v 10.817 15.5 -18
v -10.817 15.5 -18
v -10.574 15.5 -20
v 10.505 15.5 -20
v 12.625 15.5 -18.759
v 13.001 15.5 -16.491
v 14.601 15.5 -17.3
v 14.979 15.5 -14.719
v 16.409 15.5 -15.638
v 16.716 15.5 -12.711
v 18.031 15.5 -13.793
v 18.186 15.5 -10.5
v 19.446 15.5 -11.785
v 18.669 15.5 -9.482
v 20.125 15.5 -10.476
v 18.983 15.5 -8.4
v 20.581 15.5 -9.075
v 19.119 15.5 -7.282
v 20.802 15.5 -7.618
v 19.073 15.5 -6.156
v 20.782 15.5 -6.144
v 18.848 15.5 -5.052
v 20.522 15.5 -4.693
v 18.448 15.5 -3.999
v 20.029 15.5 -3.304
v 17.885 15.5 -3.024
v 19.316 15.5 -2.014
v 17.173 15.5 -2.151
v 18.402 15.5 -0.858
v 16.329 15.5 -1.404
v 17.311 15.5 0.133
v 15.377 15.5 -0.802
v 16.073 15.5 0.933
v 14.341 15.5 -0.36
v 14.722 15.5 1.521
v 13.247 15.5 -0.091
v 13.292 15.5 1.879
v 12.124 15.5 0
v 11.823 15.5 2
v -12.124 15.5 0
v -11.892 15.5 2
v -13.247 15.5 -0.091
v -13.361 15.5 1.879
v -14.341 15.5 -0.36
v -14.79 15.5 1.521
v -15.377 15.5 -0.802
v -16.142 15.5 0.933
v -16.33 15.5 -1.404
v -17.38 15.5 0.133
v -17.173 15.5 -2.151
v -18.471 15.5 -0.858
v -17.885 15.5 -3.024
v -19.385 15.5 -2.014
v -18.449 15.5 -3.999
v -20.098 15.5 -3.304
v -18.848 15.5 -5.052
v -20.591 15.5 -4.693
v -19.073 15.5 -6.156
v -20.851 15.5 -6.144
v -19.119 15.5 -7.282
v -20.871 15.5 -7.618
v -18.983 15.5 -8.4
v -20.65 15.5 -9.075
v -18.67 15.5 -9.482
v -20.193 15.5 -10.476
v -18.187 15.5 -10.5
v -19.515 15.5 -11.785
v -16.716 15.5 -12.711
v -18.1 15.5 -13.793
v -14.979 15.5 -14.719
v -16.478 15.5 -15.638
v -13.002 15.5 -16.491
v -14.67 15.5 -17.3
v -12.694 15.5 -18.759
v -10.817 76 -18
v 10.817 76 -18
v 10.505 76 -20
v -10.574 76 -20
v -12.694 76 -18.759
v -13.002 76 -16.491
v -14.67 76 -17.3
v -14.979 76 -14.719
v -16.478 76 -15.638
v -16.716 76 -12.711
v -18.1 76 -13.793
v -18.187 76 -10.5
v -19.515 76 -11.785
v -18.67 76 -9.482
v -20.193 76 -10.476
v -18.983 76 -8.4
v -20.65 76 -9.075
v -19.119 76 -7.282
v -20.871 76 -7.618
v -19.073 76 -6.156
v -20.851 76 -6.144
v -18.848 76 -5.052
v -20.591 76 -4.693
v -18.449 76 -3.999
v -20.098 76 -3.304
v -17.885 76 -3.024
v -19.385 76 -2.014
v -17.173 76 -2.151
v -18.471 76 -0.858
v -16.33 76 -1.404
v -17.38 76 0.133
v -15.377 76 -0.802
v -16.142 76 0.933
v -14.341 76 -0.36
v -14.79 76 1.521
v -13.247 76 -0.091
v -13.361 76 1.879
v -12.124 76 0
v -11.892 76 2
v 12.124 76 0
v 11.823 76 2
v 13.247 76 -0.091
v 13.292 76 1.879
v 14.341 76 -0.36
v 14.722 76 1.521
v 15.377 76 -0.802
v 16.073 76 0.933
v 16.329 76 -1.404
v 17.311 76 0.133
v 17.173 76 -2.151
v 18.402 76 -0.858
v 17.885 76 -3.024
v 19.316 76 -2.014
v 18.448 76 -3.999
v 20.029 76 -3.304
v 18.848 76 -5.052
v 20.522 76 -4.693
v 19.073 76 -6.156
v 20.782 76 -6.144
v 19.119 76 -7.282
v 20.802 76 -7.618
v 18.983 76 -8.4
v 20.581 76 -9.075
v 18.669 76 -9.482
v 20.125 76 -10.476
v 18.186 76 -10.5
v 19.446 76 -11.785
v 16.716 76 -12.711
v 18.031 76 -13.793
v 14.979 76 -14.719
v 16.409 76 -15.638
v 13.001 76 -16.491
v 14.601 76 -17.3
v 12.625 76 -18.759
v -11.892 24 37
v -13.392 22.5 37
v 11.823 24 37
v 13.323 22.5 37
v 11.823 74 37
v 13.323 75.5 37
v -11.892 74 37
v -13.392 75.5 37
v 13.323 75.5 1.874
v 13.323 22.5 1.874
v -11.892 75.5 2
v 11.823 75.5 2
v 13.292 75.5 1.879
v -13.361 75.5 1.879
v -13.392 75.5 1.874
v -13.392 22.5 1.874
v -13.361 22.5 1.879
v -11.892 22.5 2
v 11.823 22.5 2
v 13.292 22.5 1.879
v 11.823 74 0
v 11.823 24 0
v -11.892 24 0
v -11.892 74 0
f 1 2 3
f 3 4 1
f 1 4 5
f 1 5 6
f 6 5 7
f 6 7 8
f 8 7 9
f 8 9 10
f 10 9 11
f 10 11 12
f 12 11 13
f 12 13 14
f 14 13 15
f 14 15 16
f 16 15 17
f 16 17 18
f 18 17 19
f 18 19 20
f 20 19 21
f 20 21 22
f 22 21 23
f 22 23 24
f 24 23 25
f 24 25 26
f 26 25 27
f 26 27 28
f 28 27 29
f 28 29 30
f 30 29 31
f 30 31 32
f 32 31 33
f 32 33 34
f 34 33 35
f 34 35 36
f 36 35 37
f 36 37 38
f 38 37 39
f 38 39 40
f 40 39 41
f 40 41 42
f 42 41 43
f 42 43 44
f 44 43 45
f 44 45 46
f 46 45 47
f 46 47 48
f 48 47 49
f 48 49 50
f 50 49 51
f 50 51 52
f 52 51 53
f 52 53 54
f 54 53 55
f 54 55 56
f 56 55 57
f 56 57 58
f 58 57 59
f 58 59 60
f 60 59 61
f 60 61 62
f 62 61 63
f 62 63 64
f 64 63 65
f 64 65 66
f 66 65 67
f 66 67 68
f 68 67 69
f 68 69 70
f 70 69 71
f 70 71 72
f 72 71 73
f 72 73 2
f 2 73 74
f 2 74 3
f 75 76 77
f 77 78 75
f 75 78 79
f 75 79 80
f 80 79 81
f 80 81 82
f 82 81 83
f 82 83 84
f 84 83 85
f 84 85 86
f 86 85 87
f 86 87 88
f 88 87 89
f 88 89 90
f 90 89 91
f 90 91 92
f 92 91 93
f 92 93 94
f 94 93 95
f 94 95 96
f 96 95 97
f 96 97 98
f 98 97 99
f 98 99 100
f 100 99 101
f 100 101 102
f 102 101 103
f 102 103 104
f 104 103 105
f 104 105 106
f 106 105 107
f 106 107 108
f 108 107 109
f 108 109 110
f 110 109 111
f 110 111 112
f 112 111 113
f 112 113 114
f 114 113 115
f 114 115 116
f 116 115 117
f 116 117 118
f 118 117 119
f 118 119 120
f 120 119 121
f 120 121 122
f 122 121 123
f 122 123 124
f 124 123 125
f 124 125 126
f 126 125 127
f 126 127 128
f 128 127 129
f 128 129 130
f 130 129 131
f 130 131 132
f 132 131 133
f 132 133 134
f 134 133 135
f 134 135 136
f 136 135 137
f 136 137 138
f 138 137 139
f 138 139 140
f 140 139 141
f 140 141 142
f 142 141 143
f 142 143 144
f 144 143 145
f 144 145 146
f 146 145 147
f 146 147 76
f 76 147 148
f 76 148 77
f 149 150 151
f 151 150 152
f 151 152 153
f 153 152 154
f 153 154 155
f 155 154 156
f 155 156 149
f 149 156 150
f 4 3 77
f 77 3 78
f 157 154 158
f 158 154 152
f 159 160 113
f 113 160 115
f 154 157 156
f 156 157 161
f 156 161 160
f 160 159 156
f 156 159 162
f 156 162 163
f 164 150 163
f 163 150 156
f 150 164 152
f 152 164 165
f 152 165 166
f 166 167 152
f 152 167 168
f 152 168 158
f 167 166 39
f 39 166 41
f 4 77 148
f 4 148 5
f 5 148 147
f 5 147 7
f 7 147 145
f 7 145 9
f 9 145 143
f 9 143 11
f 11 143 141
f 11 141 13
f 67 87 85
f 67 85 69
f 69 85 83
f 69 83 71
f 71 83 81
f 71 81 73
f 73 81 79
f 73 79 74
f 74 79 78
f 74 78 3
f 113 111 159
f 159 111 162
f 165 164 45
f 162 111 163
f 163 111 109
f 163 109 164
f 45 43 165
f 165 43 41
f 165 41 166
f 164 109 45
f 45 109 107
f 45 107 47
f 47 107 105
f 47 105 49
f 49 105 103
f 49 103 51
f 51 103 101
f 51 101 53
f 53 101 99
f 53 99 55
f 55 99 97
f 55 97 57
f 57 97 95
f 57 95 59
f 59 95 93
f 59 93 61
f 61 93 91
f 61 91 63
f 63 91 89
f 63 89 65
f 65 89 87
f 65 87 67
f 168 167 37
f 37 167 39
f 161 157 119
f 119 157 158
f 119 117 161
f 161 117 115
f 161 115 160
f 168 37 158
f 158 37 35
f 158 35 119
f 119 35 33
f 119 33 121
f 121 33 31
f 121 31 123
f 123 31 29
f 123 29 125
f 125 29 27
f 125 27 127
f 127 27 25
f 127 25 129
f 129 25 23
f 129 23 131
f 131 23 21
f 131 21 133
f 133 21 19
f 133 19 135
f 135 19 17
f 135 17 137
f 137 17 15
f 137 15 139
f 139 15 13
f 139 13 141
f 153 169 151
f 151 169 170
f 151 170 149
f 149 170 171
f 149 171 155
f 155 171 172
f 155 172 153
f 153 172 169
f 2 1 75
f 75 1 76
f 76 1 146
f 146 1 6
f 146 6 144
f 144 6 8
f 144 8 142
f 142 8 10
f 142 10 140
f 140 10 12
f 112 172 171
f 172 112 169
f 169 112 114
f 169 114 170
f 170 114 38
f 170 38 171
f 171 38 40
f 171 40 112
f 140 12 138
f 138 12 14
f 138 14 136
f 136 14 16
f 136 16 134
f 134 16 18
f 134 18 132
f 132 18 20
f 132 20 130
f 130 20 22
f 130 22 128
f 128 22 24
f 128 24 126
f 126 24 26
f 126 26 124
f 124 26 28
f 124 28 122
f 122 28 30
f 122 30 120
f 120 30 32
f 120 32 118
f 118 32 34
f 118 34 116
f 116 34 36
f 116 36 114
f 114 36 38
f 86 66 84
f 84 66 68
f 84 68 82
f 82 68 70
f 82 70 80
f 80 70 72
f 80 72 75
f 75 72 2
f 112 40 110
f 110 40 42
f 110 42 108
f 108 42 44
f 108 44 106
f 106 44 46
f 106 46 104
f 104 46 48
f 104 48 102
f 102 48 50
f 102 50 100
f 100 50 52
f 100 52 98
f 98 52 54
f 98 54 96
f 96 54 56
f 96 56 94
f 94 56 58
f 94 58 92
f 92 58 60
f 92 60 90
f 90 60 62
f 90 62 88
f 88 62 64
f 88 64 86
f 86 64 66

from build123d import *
from build123d.topology import SkipClean

# Parameters (mm, degrees)
CUT_EXTRUDE1_DEPTH           = 5
CUT_EXTRUDE3_DEPTH           = 70
SKETCH8_R                    = 43
CUT_EXTRUDE4_DEPTH           = 65
FILLET1_R                    = 7
SKETCH12_W                   = 6.5
SKETCH12_H                   = 63.5
CUT_REVOLVE1_ANGLE           = 60
CUT_REVOLVE1_OTHER_WAY_ANGLE = 60
SKETCH18_W                   = 13
SKETCH18_H                   = 8
CUT_EXTRUDE13_DEPTH          = 5
SKETCH20_W                   = 100
SKETCH20_H                   = 7
CUT_EXTRUDE15_DEPTH          = 5
SKETCH19_R                   = 1.5
CUT_EXTRUDE14_DEPTH          = 12
FILLET3_R                    = 4
SKETCH24_W                   = 2
SKETCH24_H                   = 3
BOSS_EXTRUDE3_DEPTH          = 2
CIRPATTERN2_COUNT            = 5
SKETCH26_W                   = 5
SKETCH26_H                   = 63.5
CUT_REVOLVE2_ANGLE           = 50
CUT_REVOLVE2_OTHER_WAY_ANGLE = 50
FILLET8_R                    = 9
SKETCH50_W                   = 13
SKETCH50_H                   = 5
CUT_EXTRUDE23_DEPTH          = 7
WRAP1_SECTION_W              = 14
WRAP1_SECTION_H              = 8
WRAP1_ANGLE                  = 29.893450181
SKETCH52_W                   = 21.079035893
SKETCH52_H                   = 8
BOSS_EXTRUDE11_DEPTH         = 7
BOSS_EXTRUDE12_START         = -1
SKETCH53_W                   = 3
SKETCH53_H                   = 7
BOSS_EXTRUDE12_DEPTH         = 3
SKETCH54_W                   = 1.6
SKETCH54_H                   = 7
BOSS_EXTRUDE13_DEPTH         = 16
SKETCH55_W                   = 4
SKETCH55_H                   = 7
BOSS_EXTRUDE14_DEPTH         = 6
SKETCH56_W                   = 3
SKETCH56_H                   = 7
CUT_EXTRUDE24_DEPTH          = 1
FILLET9_R                    = 2
SKETCH57_R                   = 1
CUT_EXTRUDE25_DEPTH          = 2
MIRROR6_START                = 14.3
MIRROR6_DEPTH                = 3.544129525
MIRROR6_START_2              = 19.844129625
MIRROR6_2_DEPTH              = 1.455870375
MIRROR6_START_3              = 17.844129525
MIRROR6_3_DEPTH              = 2.0000001
MIRROR6_START_4              = -10.618295229
MIRROR6_4_OUTLINE_R          = 1
MIRROR6_4_DEPTH              = 2
SKETCH61_W                   = 1.5
SKETCH61_H                   = 40.3
BOSS_EXTRUDE15_DEPTH         = 10
SKETCH63_W                   = 6.5
SKETCH63_H                   = 40.3
CUT_EXTRUDE27_DEPTH          = 10
CUT_EXTRUDE28_DEPTH          = 44
SKETCH67_W                   = 15
SKETCH67_H                   = 8
CUT_EXTRUDE29_DEPTH          = 5
SKETCH68_W                   = 23.715050839
SKETCH68_H                   = 50
CUT_EXTRUDE30_DEPTH          = 8
BOSS_EXTRUDE19_DEPTH         = 35
BOSS_EXTRUDE19_DEPTH_BACK    = 1
SKETCH69_W                   = 26.715050839
SKETCH69_H                   = 53
SKETCH69_W_2                 = 23.715050839
SKETCH69_H_2                 = 50
INTERSECT1_START             = 76
INTERSECT1_OUTLINE_R         = 45
INTERSECT1_OUTLINE_W         = 13
INTERSECT1_OUTLINE_H         = 8
INTERSECT1_DEPTH             = 10.5
INTERSECT1_2_OUTLINE_R       = 45
INTERSECT1_2_OUTLINE_W       = 13
INTERSECT1_2_OUTLINE_H       = 5
INTERSECT1_2_OUTLINE_W_2     = 15
INTERSECT1_2_OUTLINE_H_2     = 8
INTERSECT1_2_DEPTH           = 15.5
INTERSECT1_START_2           = 15.5
INTERSECT1_3_DEPTH           = 60.5
SKETCH70_W                   = 21.079035893
SKETCH70_H                   = 7
CUT_EXTRUDE31_DEPTH          = 10


with BuildPart() as part:
    # Sketch1 → Revolve1 (revolve)
    with BuildSketch(Plane.XY, mode=Mode.PRIVATE) as revolve1_sk:
        with BuildLine():
            Line((0, 86.5), (0, 11.5))
            Line((0, 11.5), (22.7, 11.5))
            Line((22.7, 11.5), (22.7, 0))
            Line((22.7, 0), (25, 0))
            Line((25, 0), (25, 11.5))
            Line((25, 11.5), (45, 11.5))
            Line((45, 11.5), (45, 81.5))
            ThreePointArc((45, 81.5), (43.535533906, 85.035533906), (40, 86.5))
            Line((40, 86.5), (0, 86.5))
        make_face()
    revolve(revolve1_sk.sketch.rotate(Axis((0, 2, 0), (0, 1, 0)), 90), axis=Axis((0, 2, 0), (0, 1, 0)))

    # Sketch5 → Cut-Extrude1 (cut)
    with BuildSketch(Plane(origin=(0, 86.5, 0), x_dir=(1, 0, 0), z_dir=(0, 1, 0))):
        with BuildLine():
            Line((-45, 0), (45, 0))
            ThreePointArc((45, 0), (0, 45), (-45, 0))
        make_face()
    extrude(amount=-CUT_EXTRUDE1_DEPTH, mode=Mode.SUBTRACT)

    # Sketch7 → Cut-Extrude3 (cut)
    with BuildSketch(Plane.XZ.offset(-11.5)):
        with BuildLine():
            Line((21, 0), (-21, 0))
            ThreePointArc((-21, 0), (-18.277714988, -10.340461055), (-10.816653826, -18))
            Line((-10.816653826, -18), (10.816653826, -18))
            ThreePointArc((10.816653826, -18), (18.277714988, -10.340461055), (21, 0))
        make_face()
    extrude(amount=-CUT_EXTRUDE3_DEPTH, mode=Mode.SUBTRACT)

    # Sketch8 → Cut-Extrude4 (cut)
    with BuildSketch(Plane(origin=(0, 79, 0), x_dir=(1, 0, 0), z_dir=(0, 1, 0))):
        with Locations(Location((0, 0, 0), (0, 0, 270))):
            Circle(SKETCH8_R)
        with BuildLine():
            Line((22.912878475, -2), (-22.981606036, -2))
            ThreePointArc((-22.981606036, -2), (-20.067855169, 10.855581536), (-10.573881727, 20))
            Line((-10.573881727, 20), (10.505154166, 20))
            ThreePointArc((10.505154166, 20), (19.999127608, 10.855581536), (22.912878475, -2))
        make_face(mode=Mode.SUBTRACT)
    extrude(amount=-CUT_EXTRUDE4_DEPTH, mode=Mode.SUBTRACT)

    # Fillet1
    fillet1_edges = [part.edges().sort_by_distance(p)[0] for p in [
        (-21, 46.5, 0),
        (21, 46.5, 0),
    ]]
    fillet(fillet1_edges, radius=FILLET1_R)

    # Sketch12 → Cut-Revolve1 (revolve, cut)
    with BuildSketch(Plane(origin=(0, 0, 0), x_dir=(0, 0, -1), z_dir=(1, 0, 0))):
        with Locations((-44.75, 47.25)):
            Rectangle(SKETCH12_W, SKETCH12_H)
    revolve(axis=Axis((0, 81.5, 0), (0, -1, 0)), revolution_arc=CUT_REVOLVE1_ANGLE, mode=Mode.SUBTRACT)

    # Sketch12 → Cut-Revolve1 other way (revolve, cut)
    with BuildSketch(Plane(origin=(0, 0, 0), x_dir=(0, 0, -1), z_dir=(1, 0, 0))):
        with Locations((-44.75, 47.25)):
            Rectangle(SKETCH12_W, SKETCH12_H)
    revolve(axis=Axis((0, 81.5, 0), (0, 1, 0)), revolution_arc=CUT_REVOLVE1_OTHER_WAY_ANGLE, mode=Mode.SUBTRACT)

    # Sketch18 → Cut-Extrude13 (cut)
    with BuildSketch(Plane(origin=(0, 81.5, 0), x_dir=(1, 0, 0), z_dir=(0, 1, 0))):
        with Locations((0, 30)):
            Rectangle(SKETCH18_W, SKETCH18_H)
    extrude(amount=-CUT_EXTRUDE13_DEPTH, mode=Mode.SUBTRACT)

    # Sketch20 → Cut-Extrude15 (cut)
    with BuildSketch(Plane(origin=(0, 86.5, 0), x_dir=(1, 0, 0), z_dir=(0, 1, 0))):
        with Locations((0, -3.5)):
            Rectangle(SKETCH20_W, SKETCH20_H)
    extrude(amount=-CUT_EXTRUDE15_DEPTH, mode=Mode.SUBTRACT)

    # Sketch19 → Cut-Extrude14 (cut)
    with BuildSketch(Plane(origin=(0, 0, 7), x_dir=(-1, 0, 0), z_dir=(0, 0, -1))):
        with Locations((0, 84)):
            Circle(SKETCH19_R)
        with Locations((-30, 84)):
            Circle(SKETCH19_R)
        with Locations((29.452221542, 84)):
            Circle(SKETCH19_R)
    extrude(amount=-CUT_EXTRUDE14_DEPTH, mode=Mode.SUBTRACT)

    # Fillet3
    fillet3_edges = [part.edges().sort_by_distance(p)[0] for p in [
        (0, 11.5, 45),
    ]]
    fillet(fillet3_edges, radius=FILLET3_R - 0.0001)  # a hair under: the kernel refuses the full size

    # Sketch24 → Boss-Extrude3 (add)
    with BuildSketch(Plane.XZ):
        with Locations((0, -22.7)):
            Rectangle(SKETCH24_W, SKETCH24_H)
    boss_extrude3 = extrude(amount=-BOSS_EXTRUDE3_DEPTH)

    # CirPattern2: Boss-Extrude3 ×5 about axis
    cirpattern2_axis = Axis((0, 0, 0), (0, 1, 0))
    for i in range(1, CIRPATTERN2_COUNT):
        add(boss_extrude3.rotate(cirpattern2_axis, i * 360 / CIRPATTERN2_COUNT))

    # Sketch26 → Cut-Revolve2 (revolve, cut)
    with BuildSketch(Plane(origin=(0, 0, 0), x_dir=(0, 0, -1), z_dir=(1, 0, 0))):
        with Locations((45.056943441, 47.25)):
            Rectangle(SKETCH26_W, SKETCH26_H)
    revolve(axis=Axis((0, 2, 0), (0, -1, 0)), revolution_arc=CUT_REVOLVE2_ANGLE, mode=Mode.SUBTRACT)

    # Sketch26 → Cut-Revolve2 other way (revolve, cut)
    with BuildSketch(Plane(origin=(0, 0, 0), x_dir=(0, 0, -1), z_dir=(1, 0, 0))):
        with Locations((45.056943441, 47.25)):
            Rectangle(SKETCH26_W, SKETCH26_H)
    revolve(axis=Axis((0, 2, 0), (0, 1, 0)), revolution_arc=CUT_REVOLVE2_OTHER_WAY_ANGLE, mode=Mode.SUBTRACT)

    # Fillet8
    fillet8_edges = [part.edges().sort_by_distance(p)[0] for p in [
        (-22.981606036, 46.5, 2),
        (22.912878475, 46.5, 2),
    ]]
    fillet(fillet8_edges, radius=FILLET8_R)

    # Sketch50 → Cut-Extrude23 (cut)
    with BuildSketch(Plane(origin=(0, 14, 0), x_dir=(1, 0, 0), z_dir=(0, 1, 0))):
        with Locations((32, 0)):
            Rectangle(SKETCH50_W, SKETCH50_H)
        with Locations((-32, 0)):
            Rectangle(SKETCH50_W, SKETCH50_H)
    extrude(amount=-CUT_EXTRUDE23_DEPTH, mode=Mode.SUBTRACT)

    # Wrap1 section (on wrap section) → Wrap1 (revolve)
    with BuildSketch(Plane(origin=(-0.03436378, 79, 0.443056559), x_dir=(0.8417807911855657, 0, -0.5398195064936087), z_dir=(0.5398195064936087, 0, 0.8417807911855657))):
        with Locations((30, -61)):
            Rectangle(WRAP1_SECTION_W, WRAP1_SECTION_H)
    wrap1 = revolve(axis=Axis((-0.03436378, 79, 0.443056559), (0, 1, 0)), revolution_arc=WRAP1_ANGLE)

    # Mirror3: Wrap1 across plane
    add(wrap1.mirror(Plane(origin=(0, 0, 0), x_dir=(0, 0, 1), z_dir=(1, 0, 0))))

    # Sketch52 → Boss-Extrude11 (add)
    with BuildSketch(Plane(origin=(0, 0, -20), x_dir=(-1, 0, 0), z_dir=(0, 0, -1))):
        with Locations((0.03436378, 18)):
            Rectangle(SKETCH52_W, SKETCH52_H)
    extrude(amount=BOSS_EXTRUDE11_DEPTH)



with BuildPart() as body_2:
    # Sketch53 → Boss-Extrude12 (new body)
    with BuildSketch(Plane(origin=(20.823161639, 0, 0), x_dir=(0, 0, -1), z_dir=(1, 0, 0)).offset(BOSS_EXTRUDE12_START)):
        with Locations((9.818295229, 17.8)):
            Rectangle(SKETCH53_W, SKETCH53_H)
    extrude(amount=BOSS_EXTRUDE12_DEPTH)


with BuildPart() as part_1:
    add(part.part)

    add(body_2.part)  # Boss-Extrude13 merges body 2
    # Sketch54 → Boss-Extrude13 (add)
    with BuildSketch(Plane(origin=(22.823161639, 0, 0), x_dir=(0, 0, -1), z_dir=(1, 0, 0))):
        with Locations((9.818295229, 17.8)):
            Rectangle(SKETCH54_W, SKETCH54_H)
    extrude(amount=BOSS_EXTRUDE13_DEPTH)

    # Sketch55 → Boss-Extrude14 (add)
    with BuildSketch(Plane.XY.offset(-9.118295229)):
        with Locations((34.823161639, 17.8)):
            Rectangle(SKETCH55_W, SKETCH55_H)
    extrude(amount=BOSS_EXTRUDE14_DEPTH)

    # Sketch56 → Cut-Extrude24 (cut)
    with BuildSketch(Plane.XY.offset(-9.018295229)):
        with Locations((25.823161639, 17.8)):
            Rectangle(SKETCH56_W, SKETCH56_H)
    extrude(amount=-CUT_EXTRUDE24_DEPTH, mode=Mode.SUBTRACT)

    # Fillet9
    # the kernel refuses this fillet: 2 mm, written as the material it takes off along each edge
    with BuildSketch(Plane(origin=(27.323161639, 25.630127019, -9.018295229), x_dir=(0, 0, -1), z_dir=(0, -1, 0))) as fillet9_piece_1_section:
        with BuildLine():
            CenterArc((2, 1.732050808), FILLET9_R, 180, 60)
            Line((0, 1.732050808), (0, 0))
            Line((0, 0), (1, 0))
        make_face()
    fillet9_piece_1 = extrude(amount=15.660254038, mode=Mode.PRIVATE)
    fillet9_piece_1 = split(fillet9_piece_1, bisect_by=Plane(origin=(27.323161639, 14, -9.018295229), z_dir=(0, 1, 0)), keep=Keep.TOP, mode=Mode.PRIVATE)
    add(fillet9_piece_1, mode=Mode.SUBTRACT)

    # Sketch57 → Cut-Extrude25 (cut)
    with BuildSketch(Plane(origin=(0, 0, -10.618295229), x_dir=(-1, 0, 0), z_dir=(0, 0, -1))):
        with Locations(Location((-36.823161639, 18.844129625, 0), (0, 0, 90))):
            Circle(SKETCH57_R)
    extrude(amount=-CUT_EXTRUDE25_DEPTH, mode=Mode.SUBTRACT)

    # Mirror6: read off the stored shape, not the designer's step
    # Mirror6 outline → Mirror6 (add)
    with BuildSketch(Plane(origin=(0, 0, 0), x_dir=(1, 0, 0), z_dir=(0, 1, 0)).offset(MIRROR6_START)):
        with BuildLine():
            Line((-32.823161639, 9.018295229), (-29.055212446, 9.018295229))
            ThreePointArc((-29.055212446, 9.018295229), (-28.055212446, 9.286244421), (-27.323161639, 10.018295229))
            Line((-27.323161639, 10.018295229), (-24.323161639, 10.018295229))
            Line((-24.323161639, 10.018295229), (-24.323161639, 9.018295229))
            Line((-24.323161639, 9.018295229), (-22.823161639, 9.018295229))
            Line((-22.823161639, 9.018295229), (-22.823161639, 8.318295229))
            Line((-22.823161639, 8.318295229), (-20.794815555, 8.318295229))
            ThreePointArc((-20.794815555, 8.318295229), (-20.436002794, 9.828095276), (-19.823161639, 11.253812113))
            Line((-19.823161639, 11.253812113), (-19.823161639, 11.318295229))
            Line((-19.823161639, 11.318295229), (-22.823161639, 11.318295229))
            Line((-22.823161639, 11.318295229), (-22.823161639, 10.618295229))
            Line((-22.823161639, 10.618295229), (-38.823161639, 10.618295229))
            Line((-38.823161639, 10.618295229), (-38.823161639, 9.018295229))
            Line((-38.823161639, 9.018295229), (-36.823161639, 9.018295229))
            Line((-36.823161639, 9.018295229), (-36.823161639, 8.618295229))
            Line((-36.823161639, 8.618295229), (-36.823161639, 3.118295229))
            Line((-36.823161639, 3.118295229), (-32.823161639, 3.118295229))
            Line((-32.823161639, 3.118295229), (-32.823161639, 9.018295229))
        make_face()
    extrude(amount=MIRROR6_DEPTH)

    # Mirror6 2 outline → Mirror6 2 (add)
    with BuildSketch(Plane(origin=(0, 0, 0), x_dir=(1, 0, 0), z_dir=(0, 1, 0)).offset(MIRROR6_START_2)):
        with BuildLine():
            Line((-32.823161639, 9.018295229), (-29.055212446, 9.018295229))
            ThreePointArc((-29.055212446, 9.018295229), (-28.055212446, 9.286244421), (-27.323161639, 10.018295229))
            Line((-27.323161639, 10.018295229), (-24.323161639, 10.018295229))
            Line((-24.323161639, 10.018295229), (-24.323161639, 9.018295229))
            Line((-24.323161639, 9.018295229), (-22.823161639, 9.018295229))
            Line((-22.823161639, 9.018295229), (-22.823161639, 8.318295229))
            Line((-22.823161639, 8.318295229), (-20.794815555, 8.318295229))
            ThreePointArc((-20.794815555, 8.318295229), (-20.436002794, 9.828095276), (-19.823161639, 11.253812113))
            Line((-19.823161639, 11.253812113), (-19.823161639, 11.318295229))
            Line((-19.823161639, 11.318295229), (-22.823161639, 11.318295229))
            Line((-22.823161639, 11.318295229), (-22.823161639, 10.618295229))
            Line((-22.823161639, 10.618295229), (-38.823161639, 10.618295229))
            Line((-38.823161639, 10.618295229), (-38.823161639, 9.018295229))
            Line((-38.823161639, 9.018295229), (-36.823161639, 9.018295229))
            Line((-36.823161639, 9.018295229), (-36.823161639, 8.618295229))
            Line((-36.823161639, 8.618295229), (-36.823161639, 3.118295229))
            Line((-36.823161639, 3.118295229), (-32.823161639, 3.118295229))
            Line((-32.823161639, 3.118295229), (-32.823161639, 9.018295229))
        make_face()
    extrude(amount=MIRROR6_2_DEPTH)

    # Mirror6 3 outline → Mirror6 3 (add)
    with BuildSketch(Plane(origin=(0, 0, 0), x_dir=(1, 0, 0), z_dir=(0, 1, 0)).offset(MIRROR6_START_3)):
        with BuildLine():
            Line((-32.823161639, 9.018295229), (-29.055212446, 9.018295229))
            ThreePointArc((-29.055212446, 9.018295229), (-28.055212446, 9.286244421), (-27.323161639, 10.018295229))
            Line((-27.323161639, 10.018295229), (-24.323161639, 10.018295229))
            Line((-24.323161639, 10.018295229), (-24.323161639, 9.018295229))
            Line((-24.323161639, 9.018295229), (-22.823161639, 9.018295229))
            Line((-22.823161639, 9.018295229), (-22.823161639, 8.318295229))
            Line((-22.823161639, 8.318295229), (-20.794815555, 8.318295229))
            ThreePointArc((-20.794815555, 8.318295229), (-20.436002794, 9.828095276), (-19.823161639, 11.253812113))
            Line((-19.823161639, 11.253812113), (-19.823161639, 11.318295229))
            Line((-19.823161639, 11.318295229), (-22.823161639, 11.318295229))
            Line((-22.823161639, 11.318295229), (-22.823161639, 10.618295229))
            Line((-22.823161639, 10.618295229), (-38.823161639, 10.618295229))
            Line((-38.823161639, 10.618295229), (-38.823161639, 9.018295229))
            Line((-38.823161639, 9.018295229), (-36.823161639, 9.018295229))
            Line((-36.823161639, 9.018295229), (-36.823161639, 8.618295229))
            Line((-36.823161639, 8.618295229), (-36.823161639, 3.118295229))
            Line((-36.823161639, 3.118295229), (-32.823161639, 3.118295229))
            Line((-32.823161639, 3.118295229), (-32.823161639, 9.018295229))
        make_face()
    extrude(amount=MIRROR6_3_DEPTH)

    # Mirror6 4 outline → Mirror6 4 (cut)
    with BuildSketch(Plane.XY.offset(MIRROR6_START_4)):
        with Locations((-36.823161639, 18.844129625)):
            Circle(MIRROR6_4_OUTLINE_R)
    extrude(amount=MIRROR6_4_DEPTH, mode=Mode.SUBTRACT)

    # Sketch61 → Boss-Extrude15 (add)
    with BuildSketch(Plane(origin=(45, 0, 0), x_dir=(0, 0, -1), z_dir=(1, 0, 0))):
        with Locations((23.675442436, 50.15)):
            Rectangle(SKETCH61_W, SKETCH61_H)
        with Locations((15.675442436, 50.15)):
            Rectangle(SKETCH61_W, SKETCH61_H)
        Polygon((24.425442436, 30), (24.425442436, 28.5), (14.925442436, 28.5), (14.925442436, 30), (16.425442436, 30), (22.925442436, 30), align=None)
        Polygon((22.925442436, 70.3), (24.425442436, 70.3), (24.425442436, 71.8), (14.925442436, 71.8), (14.925442436, 70.3), (16.425442436, 70.3), align=None)
    extrude(amount=-BOSS_EXTRUDE15_DEPTH)

    # Sketch63 → Cut-Extrude27 (cut)
    with BuildSketch(Plane(origin=(45, 0, 0), x_dir=(0, 0, -1), z_dir=(1, 0, 0))):
        with Locations((19.675442436, 50.15)):
            Rectangle(SKETCH63_W, SKETCH63_H)
    extrude(amount=-CUT_EXTRUDE27_DEPTH, mode=Mode.SUBTRACT)

    # Sketch66 → Cut-Extrude28 (cut)
    with SkipClean():  # the faces are left unmerged after this step: merging them gives an invalid solid
        with BuildSketch(Plane(origin=(0, 71.8, 0), x_dir=(1, 0, 0), z_dir=(0, 1, 0))):
            with BuildLine():
                Line((42.452693296, 14.925442436), (45, 14.925442436))
                Line((45, 14.925442436), (45, 24.425442436))
                Line((45, 24.425442436), (37.794149836, 24.425442436))
                ThreePointArc((37.794149836, 24.425442436), (40.403606994, 19.812837804), (42.452693296, 14.925442436))
            make_face()
        extrude(amount=-CUT_EXTRUDE28_DEPTH, mode=Mode.SUBTRACT)

    # Sketch67 → Cut-Extrude29 (cut)
    with SkipClean():  # the faces are left unmerged after this step: merging them gives an invalid solid
        with BuildSketch(Plane.XZ.offset(-11.5)):
            with Locations((0, 35.077013509)):
                Rectangle(SKETCH67_W, SKETCH67_H)
        extrude(amount=-CUT_EXTRUDE29_DEPTH, mode=Mode.SUBTRACT)

    # Sketch68 → Cut-Extrude30 (cut)
    with SkipClean():  # the faces are left unmerged after this step: merging them gives an invalid solid
        with BuildSketch(Plane.XY.offset(2)):
            with Locations((-0.034363781, 49)):
                Rectangle(SKETCH68_W, SKETCH68_H)
        extrude(amount=-CUT_EXTRUDE30_DEPTH, mode=Mode.SUBTRACT)

    # Sketch69 → Boss-Extrude19 (add, two sides: drawn at the far end of the back side and taken through both)
    with SkipClean():  # the faces are left unmerged after this step: merging them gives an invalid solid
        with BuildSketch(Plane.XY.offset(2).offset(-BOSS_EXTRUDE19_DEPTH_BACK)):
            with Locations((-0.034363781, 49)):
                Rectangle(SKETCH69_W, SKETCH69_H)
            with Locations((-0.034363781, 49)):
                Rectangle(SKETCH69_W_2, SKETCH69_H_2, mode=Mode.SUBTRACT)
        extrude(amount=BOSS_EXTRUDE19_DEPTH + BOSS_EXTRUDE19_DEPTH_BACK)

    # Intersect1: read off the stored shape, not the designer's step
    # Intersect1 outline → Intersect1 (cut)
    with SkipClean():  # the faces are left unmerged after this step: merging them gives an invalid solid
        with BuildSketch(Plane(origin=(0, 0, 0), x_dir=(1, 0, 0), z_dir=(0, 1, 0)).offset(INTERSECT1_START)):
            Circle(INTERSECT1_OUTLINE_R)
            with Locations((0, 30)):
                Rectangle(INTERSECT1_OUTLINE_W, INTERSECT1_OUTLINE_H, mode=Mode.SUBTRACT)
        extrude(amount=INTERSECT1_DEPTH, mode=Mode.SUBTRACT)

    # Intersect1 2 outline → Intersect1 2 (cut)
    with SkipClean():  # the faces are left unmerged after this step: merging them gives an invalid solid
        with BuildSketch(Plane(origin=(0, 0, 0), x_dir=(1, 0, 0), z_dir=(0, 1, 0))):
            Circle(INTERSECT1_2_OUTLINE_R)
            with Locations((-32, 0)):
                Rectangle(INTERSECT1_2_OUTLINE_W, INTERSECT1_2_OUTLINE_H, mode=Mode.SUBTRACT)
            with Locations((32, 0)):
                Rectangle(INTERSECT1_2_OUTLINE_W, INTERSECT1_2_OUTLINE_H, mode=Mode.SUBTRACT)
            with Locations((0, -35.077013509)):
                Rectangle(INTERSECT1_2_OUTLINE_W_2, INTERSECT1_2_OUTLINE_H_2, mode=Mode.SUBTRACT)
        extrude(amount=INTERSECT1_2_DEPTH, mode=Mode.SUBTRACT)

    # Intersect1 3 outline → Intersect1 3 (cut)
    with BuildSketch(Plane(origin=(0, 0, 0), x_dir=(1, 0, 0), z_dir=(0, 1, 0)).offset(INTERSECT1_START_2)):
        with BuildLine():
            ThreePointArc((40.326556611, 14.925442436), (42.846361448, -3.631709055), (37.239092363, -21.5))
            Line((37.239092363, -21.5), (38.97114317, -22.5))
            ThreePointArc((38.97114317, -22.5), (44.828761414, 3.922008424), (34.47199994, 28.925442436))
            Line((34.47199994, 28.925442436), (32.939911054, 27.639867217))
            ThreePointArc((32.939911054, 27.639867217), (34.202355022, 26.061444913), (35.389232286, 24.425442436))
            Line((35.389232286, 24.425442436), (35, 24.425442436))
            Line((35, 24.425442436), (35, 14.925442436))
            Line((35, 14.925442436), (40.326556611, 14.925442436))
        make_face()
        with BuildLine():
            Line((-38.97114317, -22.5), (-37.239092363, -21.5))
            ThreePointArc((-37.239092363, -21.5), (-42.836372018, 3.747696938), (-32.939911054, 27.639867217))
            Line((-32.939911054, 27.639867217), (-34.47199994, 28.925442436))
            ThreePointArc((-34.47199994, 28.925442436), (-44.828761414, 3.922008424), (-38.97114317, -22.5))
        make_face()
    extrude(amount=INTERSECT1_3_DEPTH, mode=Mode.SUBTRACT)

    # Sketch70 → Cut-Extrude31 (cut)
    with BuildSketch(Plane(origin=(0, 22, 0), x_dir=(1, 0, 0), z_dir=(0, 1, 0))):
        with BuildLine():
            Line((24.323161639, 10.018295229), (27.323161639, 10.018295229))
            ThreePointArc((27.323161639, 10.018295229), (28.055212446, 9.286244421), (29.055212446, 9.018295229))
            Line((29.055212446, 9.018295229), (32.823161639, 9.018295229))
            Line((32.823161639, 9.018295229), (32.823161639, 3.118295229))
            Line((32.823161639, 3.118295229), (36.823161639, 3.118295229))
            Line((36.823161639, 3.118295229), (36.823161639, 9.018295229))
            Line((36.823161639, 9.018295229), (38.823161639, 9.018295229))
            Line((38.823161639, 9.018295229), (38.823161639, 10.618295229))
            Line((38.823161639, 10.618295229), (22.823161639, 10.618295229))
            Line((22.823161639, 10.618295229), (22.823161639, 11.318295229))
            Line((22.823161639, 11.318295229), (19.823161639, 11.318295229))
            Line((19.823161639, 11.318295229), (19.823161639, 11.123105626))
            ThreePointArc((19.823161639, 11.123105626), (20.390189722, 9.757903156), (20.726087994, 8.318295229))
            Line((20.726087994, 8.318295229), (22.823161639, 8.318295229))
            Line((22.823161639, 8.318295229), (22.823161639, 9.018295229))
            Line((22.823161639, 9.018295229), (24.323161639, 9.018295229))
            Line((24.323161639, 9.018295229), (24.323161639, 10.018295229))
        make_face()
        with BuildLine():
            Line((-22.823161639, 8.318295229), (-20.794815555, 8.318295229))
            ThreePointArc((-20.794815555, 8.318295229), (-20.436002794, 9.828095276), (-19.823161639, 11.253812113))
            Line((-19.823161639, 11.253812113), (-19.823161639, 11.318295229))
            Line((-19.823161639, 11.318295229), (-22.823161639, 11.318295229))
            Line((-22.823161639, 11.318295229), (-22.823161639, 10.618295229))
            Line((-22.823161639, 10.618295229), (-38.823161639, 10.618295229))
            Line((-38.823161639, 10.618295229), (-38.823161639, 9.018295229))
            Line((-38.823161639, 9.018295229), (-36.823161639, 9.018295229))
            Line((-36.823161639, 9.018295229), (-36.823161639, 3.118295229))
            Line((-36.823161639, 3.118295229), (-32.823161639, 3.118295229))
            Line((-32.823161639, 3.118295229), (-32.823161639, 9.018295229))
            Line((-32.823161639, 9.018295229), (-29.055212446, 9.018295229))
            ThreePointArc((-29.055212446, 9.018295229), (-28.055212446, 9.286244421), (-27.323161639, 10.018295229))
            Line((-27.323161639, 10.018295229), (-24.323161639, 10.018295229))
            Line((-24.323161639, 10.018295229), (-24.323161639, 9.018295229))
            Line((-24.323161639, 9.018295229), (-22.823161639, 9.018295229))
            Line((-22.823161639, 9.018295229), (-22.823161639, 8.318295229))
        make_face()
        with BuildLine():
            Line((-31.111525493, 19.530265182), (-19.375269228, 12.004006408))
            ThreePointArc((-19.375269228, 12.004006408), (-15.501692684, 16.579332716), (-10.577325869, 19.998223989))
            Line((-10.577325869, 19.998223989), (-17.013204462, 32.395646477))
            ThreePointArc((-17.013204462, 32.395646477), (-24.906202488, 26.887661584), (-31.111525493, 19.530265182))
        make_face()
        with BuildLine():
            Line((17.013204462, 32.395646477), (10.562773235, 19.970191274))
            ThreePointArc((10.562773235, 19.970191274), (15.469231468, 16.546308773), (19.326594417, 11.972792091))
            Line((19.326594417, 11.972792091), (31.111525493, 19.530265182))
            ThreePointArc((31.111525493, 19.530265182), (24.906202488, 26.887661584), (17.013204462, 32.395646477))
        make_face()
        with Locations((-0.03436378, 23.5)):
            Rectangle(SKETCH70_W, SKETCH70_H)
    extrude(amount=-CUT_EXTRUDE31_DEPTH, mode=Mode.SUBTRACT)


solid = part_1.part
